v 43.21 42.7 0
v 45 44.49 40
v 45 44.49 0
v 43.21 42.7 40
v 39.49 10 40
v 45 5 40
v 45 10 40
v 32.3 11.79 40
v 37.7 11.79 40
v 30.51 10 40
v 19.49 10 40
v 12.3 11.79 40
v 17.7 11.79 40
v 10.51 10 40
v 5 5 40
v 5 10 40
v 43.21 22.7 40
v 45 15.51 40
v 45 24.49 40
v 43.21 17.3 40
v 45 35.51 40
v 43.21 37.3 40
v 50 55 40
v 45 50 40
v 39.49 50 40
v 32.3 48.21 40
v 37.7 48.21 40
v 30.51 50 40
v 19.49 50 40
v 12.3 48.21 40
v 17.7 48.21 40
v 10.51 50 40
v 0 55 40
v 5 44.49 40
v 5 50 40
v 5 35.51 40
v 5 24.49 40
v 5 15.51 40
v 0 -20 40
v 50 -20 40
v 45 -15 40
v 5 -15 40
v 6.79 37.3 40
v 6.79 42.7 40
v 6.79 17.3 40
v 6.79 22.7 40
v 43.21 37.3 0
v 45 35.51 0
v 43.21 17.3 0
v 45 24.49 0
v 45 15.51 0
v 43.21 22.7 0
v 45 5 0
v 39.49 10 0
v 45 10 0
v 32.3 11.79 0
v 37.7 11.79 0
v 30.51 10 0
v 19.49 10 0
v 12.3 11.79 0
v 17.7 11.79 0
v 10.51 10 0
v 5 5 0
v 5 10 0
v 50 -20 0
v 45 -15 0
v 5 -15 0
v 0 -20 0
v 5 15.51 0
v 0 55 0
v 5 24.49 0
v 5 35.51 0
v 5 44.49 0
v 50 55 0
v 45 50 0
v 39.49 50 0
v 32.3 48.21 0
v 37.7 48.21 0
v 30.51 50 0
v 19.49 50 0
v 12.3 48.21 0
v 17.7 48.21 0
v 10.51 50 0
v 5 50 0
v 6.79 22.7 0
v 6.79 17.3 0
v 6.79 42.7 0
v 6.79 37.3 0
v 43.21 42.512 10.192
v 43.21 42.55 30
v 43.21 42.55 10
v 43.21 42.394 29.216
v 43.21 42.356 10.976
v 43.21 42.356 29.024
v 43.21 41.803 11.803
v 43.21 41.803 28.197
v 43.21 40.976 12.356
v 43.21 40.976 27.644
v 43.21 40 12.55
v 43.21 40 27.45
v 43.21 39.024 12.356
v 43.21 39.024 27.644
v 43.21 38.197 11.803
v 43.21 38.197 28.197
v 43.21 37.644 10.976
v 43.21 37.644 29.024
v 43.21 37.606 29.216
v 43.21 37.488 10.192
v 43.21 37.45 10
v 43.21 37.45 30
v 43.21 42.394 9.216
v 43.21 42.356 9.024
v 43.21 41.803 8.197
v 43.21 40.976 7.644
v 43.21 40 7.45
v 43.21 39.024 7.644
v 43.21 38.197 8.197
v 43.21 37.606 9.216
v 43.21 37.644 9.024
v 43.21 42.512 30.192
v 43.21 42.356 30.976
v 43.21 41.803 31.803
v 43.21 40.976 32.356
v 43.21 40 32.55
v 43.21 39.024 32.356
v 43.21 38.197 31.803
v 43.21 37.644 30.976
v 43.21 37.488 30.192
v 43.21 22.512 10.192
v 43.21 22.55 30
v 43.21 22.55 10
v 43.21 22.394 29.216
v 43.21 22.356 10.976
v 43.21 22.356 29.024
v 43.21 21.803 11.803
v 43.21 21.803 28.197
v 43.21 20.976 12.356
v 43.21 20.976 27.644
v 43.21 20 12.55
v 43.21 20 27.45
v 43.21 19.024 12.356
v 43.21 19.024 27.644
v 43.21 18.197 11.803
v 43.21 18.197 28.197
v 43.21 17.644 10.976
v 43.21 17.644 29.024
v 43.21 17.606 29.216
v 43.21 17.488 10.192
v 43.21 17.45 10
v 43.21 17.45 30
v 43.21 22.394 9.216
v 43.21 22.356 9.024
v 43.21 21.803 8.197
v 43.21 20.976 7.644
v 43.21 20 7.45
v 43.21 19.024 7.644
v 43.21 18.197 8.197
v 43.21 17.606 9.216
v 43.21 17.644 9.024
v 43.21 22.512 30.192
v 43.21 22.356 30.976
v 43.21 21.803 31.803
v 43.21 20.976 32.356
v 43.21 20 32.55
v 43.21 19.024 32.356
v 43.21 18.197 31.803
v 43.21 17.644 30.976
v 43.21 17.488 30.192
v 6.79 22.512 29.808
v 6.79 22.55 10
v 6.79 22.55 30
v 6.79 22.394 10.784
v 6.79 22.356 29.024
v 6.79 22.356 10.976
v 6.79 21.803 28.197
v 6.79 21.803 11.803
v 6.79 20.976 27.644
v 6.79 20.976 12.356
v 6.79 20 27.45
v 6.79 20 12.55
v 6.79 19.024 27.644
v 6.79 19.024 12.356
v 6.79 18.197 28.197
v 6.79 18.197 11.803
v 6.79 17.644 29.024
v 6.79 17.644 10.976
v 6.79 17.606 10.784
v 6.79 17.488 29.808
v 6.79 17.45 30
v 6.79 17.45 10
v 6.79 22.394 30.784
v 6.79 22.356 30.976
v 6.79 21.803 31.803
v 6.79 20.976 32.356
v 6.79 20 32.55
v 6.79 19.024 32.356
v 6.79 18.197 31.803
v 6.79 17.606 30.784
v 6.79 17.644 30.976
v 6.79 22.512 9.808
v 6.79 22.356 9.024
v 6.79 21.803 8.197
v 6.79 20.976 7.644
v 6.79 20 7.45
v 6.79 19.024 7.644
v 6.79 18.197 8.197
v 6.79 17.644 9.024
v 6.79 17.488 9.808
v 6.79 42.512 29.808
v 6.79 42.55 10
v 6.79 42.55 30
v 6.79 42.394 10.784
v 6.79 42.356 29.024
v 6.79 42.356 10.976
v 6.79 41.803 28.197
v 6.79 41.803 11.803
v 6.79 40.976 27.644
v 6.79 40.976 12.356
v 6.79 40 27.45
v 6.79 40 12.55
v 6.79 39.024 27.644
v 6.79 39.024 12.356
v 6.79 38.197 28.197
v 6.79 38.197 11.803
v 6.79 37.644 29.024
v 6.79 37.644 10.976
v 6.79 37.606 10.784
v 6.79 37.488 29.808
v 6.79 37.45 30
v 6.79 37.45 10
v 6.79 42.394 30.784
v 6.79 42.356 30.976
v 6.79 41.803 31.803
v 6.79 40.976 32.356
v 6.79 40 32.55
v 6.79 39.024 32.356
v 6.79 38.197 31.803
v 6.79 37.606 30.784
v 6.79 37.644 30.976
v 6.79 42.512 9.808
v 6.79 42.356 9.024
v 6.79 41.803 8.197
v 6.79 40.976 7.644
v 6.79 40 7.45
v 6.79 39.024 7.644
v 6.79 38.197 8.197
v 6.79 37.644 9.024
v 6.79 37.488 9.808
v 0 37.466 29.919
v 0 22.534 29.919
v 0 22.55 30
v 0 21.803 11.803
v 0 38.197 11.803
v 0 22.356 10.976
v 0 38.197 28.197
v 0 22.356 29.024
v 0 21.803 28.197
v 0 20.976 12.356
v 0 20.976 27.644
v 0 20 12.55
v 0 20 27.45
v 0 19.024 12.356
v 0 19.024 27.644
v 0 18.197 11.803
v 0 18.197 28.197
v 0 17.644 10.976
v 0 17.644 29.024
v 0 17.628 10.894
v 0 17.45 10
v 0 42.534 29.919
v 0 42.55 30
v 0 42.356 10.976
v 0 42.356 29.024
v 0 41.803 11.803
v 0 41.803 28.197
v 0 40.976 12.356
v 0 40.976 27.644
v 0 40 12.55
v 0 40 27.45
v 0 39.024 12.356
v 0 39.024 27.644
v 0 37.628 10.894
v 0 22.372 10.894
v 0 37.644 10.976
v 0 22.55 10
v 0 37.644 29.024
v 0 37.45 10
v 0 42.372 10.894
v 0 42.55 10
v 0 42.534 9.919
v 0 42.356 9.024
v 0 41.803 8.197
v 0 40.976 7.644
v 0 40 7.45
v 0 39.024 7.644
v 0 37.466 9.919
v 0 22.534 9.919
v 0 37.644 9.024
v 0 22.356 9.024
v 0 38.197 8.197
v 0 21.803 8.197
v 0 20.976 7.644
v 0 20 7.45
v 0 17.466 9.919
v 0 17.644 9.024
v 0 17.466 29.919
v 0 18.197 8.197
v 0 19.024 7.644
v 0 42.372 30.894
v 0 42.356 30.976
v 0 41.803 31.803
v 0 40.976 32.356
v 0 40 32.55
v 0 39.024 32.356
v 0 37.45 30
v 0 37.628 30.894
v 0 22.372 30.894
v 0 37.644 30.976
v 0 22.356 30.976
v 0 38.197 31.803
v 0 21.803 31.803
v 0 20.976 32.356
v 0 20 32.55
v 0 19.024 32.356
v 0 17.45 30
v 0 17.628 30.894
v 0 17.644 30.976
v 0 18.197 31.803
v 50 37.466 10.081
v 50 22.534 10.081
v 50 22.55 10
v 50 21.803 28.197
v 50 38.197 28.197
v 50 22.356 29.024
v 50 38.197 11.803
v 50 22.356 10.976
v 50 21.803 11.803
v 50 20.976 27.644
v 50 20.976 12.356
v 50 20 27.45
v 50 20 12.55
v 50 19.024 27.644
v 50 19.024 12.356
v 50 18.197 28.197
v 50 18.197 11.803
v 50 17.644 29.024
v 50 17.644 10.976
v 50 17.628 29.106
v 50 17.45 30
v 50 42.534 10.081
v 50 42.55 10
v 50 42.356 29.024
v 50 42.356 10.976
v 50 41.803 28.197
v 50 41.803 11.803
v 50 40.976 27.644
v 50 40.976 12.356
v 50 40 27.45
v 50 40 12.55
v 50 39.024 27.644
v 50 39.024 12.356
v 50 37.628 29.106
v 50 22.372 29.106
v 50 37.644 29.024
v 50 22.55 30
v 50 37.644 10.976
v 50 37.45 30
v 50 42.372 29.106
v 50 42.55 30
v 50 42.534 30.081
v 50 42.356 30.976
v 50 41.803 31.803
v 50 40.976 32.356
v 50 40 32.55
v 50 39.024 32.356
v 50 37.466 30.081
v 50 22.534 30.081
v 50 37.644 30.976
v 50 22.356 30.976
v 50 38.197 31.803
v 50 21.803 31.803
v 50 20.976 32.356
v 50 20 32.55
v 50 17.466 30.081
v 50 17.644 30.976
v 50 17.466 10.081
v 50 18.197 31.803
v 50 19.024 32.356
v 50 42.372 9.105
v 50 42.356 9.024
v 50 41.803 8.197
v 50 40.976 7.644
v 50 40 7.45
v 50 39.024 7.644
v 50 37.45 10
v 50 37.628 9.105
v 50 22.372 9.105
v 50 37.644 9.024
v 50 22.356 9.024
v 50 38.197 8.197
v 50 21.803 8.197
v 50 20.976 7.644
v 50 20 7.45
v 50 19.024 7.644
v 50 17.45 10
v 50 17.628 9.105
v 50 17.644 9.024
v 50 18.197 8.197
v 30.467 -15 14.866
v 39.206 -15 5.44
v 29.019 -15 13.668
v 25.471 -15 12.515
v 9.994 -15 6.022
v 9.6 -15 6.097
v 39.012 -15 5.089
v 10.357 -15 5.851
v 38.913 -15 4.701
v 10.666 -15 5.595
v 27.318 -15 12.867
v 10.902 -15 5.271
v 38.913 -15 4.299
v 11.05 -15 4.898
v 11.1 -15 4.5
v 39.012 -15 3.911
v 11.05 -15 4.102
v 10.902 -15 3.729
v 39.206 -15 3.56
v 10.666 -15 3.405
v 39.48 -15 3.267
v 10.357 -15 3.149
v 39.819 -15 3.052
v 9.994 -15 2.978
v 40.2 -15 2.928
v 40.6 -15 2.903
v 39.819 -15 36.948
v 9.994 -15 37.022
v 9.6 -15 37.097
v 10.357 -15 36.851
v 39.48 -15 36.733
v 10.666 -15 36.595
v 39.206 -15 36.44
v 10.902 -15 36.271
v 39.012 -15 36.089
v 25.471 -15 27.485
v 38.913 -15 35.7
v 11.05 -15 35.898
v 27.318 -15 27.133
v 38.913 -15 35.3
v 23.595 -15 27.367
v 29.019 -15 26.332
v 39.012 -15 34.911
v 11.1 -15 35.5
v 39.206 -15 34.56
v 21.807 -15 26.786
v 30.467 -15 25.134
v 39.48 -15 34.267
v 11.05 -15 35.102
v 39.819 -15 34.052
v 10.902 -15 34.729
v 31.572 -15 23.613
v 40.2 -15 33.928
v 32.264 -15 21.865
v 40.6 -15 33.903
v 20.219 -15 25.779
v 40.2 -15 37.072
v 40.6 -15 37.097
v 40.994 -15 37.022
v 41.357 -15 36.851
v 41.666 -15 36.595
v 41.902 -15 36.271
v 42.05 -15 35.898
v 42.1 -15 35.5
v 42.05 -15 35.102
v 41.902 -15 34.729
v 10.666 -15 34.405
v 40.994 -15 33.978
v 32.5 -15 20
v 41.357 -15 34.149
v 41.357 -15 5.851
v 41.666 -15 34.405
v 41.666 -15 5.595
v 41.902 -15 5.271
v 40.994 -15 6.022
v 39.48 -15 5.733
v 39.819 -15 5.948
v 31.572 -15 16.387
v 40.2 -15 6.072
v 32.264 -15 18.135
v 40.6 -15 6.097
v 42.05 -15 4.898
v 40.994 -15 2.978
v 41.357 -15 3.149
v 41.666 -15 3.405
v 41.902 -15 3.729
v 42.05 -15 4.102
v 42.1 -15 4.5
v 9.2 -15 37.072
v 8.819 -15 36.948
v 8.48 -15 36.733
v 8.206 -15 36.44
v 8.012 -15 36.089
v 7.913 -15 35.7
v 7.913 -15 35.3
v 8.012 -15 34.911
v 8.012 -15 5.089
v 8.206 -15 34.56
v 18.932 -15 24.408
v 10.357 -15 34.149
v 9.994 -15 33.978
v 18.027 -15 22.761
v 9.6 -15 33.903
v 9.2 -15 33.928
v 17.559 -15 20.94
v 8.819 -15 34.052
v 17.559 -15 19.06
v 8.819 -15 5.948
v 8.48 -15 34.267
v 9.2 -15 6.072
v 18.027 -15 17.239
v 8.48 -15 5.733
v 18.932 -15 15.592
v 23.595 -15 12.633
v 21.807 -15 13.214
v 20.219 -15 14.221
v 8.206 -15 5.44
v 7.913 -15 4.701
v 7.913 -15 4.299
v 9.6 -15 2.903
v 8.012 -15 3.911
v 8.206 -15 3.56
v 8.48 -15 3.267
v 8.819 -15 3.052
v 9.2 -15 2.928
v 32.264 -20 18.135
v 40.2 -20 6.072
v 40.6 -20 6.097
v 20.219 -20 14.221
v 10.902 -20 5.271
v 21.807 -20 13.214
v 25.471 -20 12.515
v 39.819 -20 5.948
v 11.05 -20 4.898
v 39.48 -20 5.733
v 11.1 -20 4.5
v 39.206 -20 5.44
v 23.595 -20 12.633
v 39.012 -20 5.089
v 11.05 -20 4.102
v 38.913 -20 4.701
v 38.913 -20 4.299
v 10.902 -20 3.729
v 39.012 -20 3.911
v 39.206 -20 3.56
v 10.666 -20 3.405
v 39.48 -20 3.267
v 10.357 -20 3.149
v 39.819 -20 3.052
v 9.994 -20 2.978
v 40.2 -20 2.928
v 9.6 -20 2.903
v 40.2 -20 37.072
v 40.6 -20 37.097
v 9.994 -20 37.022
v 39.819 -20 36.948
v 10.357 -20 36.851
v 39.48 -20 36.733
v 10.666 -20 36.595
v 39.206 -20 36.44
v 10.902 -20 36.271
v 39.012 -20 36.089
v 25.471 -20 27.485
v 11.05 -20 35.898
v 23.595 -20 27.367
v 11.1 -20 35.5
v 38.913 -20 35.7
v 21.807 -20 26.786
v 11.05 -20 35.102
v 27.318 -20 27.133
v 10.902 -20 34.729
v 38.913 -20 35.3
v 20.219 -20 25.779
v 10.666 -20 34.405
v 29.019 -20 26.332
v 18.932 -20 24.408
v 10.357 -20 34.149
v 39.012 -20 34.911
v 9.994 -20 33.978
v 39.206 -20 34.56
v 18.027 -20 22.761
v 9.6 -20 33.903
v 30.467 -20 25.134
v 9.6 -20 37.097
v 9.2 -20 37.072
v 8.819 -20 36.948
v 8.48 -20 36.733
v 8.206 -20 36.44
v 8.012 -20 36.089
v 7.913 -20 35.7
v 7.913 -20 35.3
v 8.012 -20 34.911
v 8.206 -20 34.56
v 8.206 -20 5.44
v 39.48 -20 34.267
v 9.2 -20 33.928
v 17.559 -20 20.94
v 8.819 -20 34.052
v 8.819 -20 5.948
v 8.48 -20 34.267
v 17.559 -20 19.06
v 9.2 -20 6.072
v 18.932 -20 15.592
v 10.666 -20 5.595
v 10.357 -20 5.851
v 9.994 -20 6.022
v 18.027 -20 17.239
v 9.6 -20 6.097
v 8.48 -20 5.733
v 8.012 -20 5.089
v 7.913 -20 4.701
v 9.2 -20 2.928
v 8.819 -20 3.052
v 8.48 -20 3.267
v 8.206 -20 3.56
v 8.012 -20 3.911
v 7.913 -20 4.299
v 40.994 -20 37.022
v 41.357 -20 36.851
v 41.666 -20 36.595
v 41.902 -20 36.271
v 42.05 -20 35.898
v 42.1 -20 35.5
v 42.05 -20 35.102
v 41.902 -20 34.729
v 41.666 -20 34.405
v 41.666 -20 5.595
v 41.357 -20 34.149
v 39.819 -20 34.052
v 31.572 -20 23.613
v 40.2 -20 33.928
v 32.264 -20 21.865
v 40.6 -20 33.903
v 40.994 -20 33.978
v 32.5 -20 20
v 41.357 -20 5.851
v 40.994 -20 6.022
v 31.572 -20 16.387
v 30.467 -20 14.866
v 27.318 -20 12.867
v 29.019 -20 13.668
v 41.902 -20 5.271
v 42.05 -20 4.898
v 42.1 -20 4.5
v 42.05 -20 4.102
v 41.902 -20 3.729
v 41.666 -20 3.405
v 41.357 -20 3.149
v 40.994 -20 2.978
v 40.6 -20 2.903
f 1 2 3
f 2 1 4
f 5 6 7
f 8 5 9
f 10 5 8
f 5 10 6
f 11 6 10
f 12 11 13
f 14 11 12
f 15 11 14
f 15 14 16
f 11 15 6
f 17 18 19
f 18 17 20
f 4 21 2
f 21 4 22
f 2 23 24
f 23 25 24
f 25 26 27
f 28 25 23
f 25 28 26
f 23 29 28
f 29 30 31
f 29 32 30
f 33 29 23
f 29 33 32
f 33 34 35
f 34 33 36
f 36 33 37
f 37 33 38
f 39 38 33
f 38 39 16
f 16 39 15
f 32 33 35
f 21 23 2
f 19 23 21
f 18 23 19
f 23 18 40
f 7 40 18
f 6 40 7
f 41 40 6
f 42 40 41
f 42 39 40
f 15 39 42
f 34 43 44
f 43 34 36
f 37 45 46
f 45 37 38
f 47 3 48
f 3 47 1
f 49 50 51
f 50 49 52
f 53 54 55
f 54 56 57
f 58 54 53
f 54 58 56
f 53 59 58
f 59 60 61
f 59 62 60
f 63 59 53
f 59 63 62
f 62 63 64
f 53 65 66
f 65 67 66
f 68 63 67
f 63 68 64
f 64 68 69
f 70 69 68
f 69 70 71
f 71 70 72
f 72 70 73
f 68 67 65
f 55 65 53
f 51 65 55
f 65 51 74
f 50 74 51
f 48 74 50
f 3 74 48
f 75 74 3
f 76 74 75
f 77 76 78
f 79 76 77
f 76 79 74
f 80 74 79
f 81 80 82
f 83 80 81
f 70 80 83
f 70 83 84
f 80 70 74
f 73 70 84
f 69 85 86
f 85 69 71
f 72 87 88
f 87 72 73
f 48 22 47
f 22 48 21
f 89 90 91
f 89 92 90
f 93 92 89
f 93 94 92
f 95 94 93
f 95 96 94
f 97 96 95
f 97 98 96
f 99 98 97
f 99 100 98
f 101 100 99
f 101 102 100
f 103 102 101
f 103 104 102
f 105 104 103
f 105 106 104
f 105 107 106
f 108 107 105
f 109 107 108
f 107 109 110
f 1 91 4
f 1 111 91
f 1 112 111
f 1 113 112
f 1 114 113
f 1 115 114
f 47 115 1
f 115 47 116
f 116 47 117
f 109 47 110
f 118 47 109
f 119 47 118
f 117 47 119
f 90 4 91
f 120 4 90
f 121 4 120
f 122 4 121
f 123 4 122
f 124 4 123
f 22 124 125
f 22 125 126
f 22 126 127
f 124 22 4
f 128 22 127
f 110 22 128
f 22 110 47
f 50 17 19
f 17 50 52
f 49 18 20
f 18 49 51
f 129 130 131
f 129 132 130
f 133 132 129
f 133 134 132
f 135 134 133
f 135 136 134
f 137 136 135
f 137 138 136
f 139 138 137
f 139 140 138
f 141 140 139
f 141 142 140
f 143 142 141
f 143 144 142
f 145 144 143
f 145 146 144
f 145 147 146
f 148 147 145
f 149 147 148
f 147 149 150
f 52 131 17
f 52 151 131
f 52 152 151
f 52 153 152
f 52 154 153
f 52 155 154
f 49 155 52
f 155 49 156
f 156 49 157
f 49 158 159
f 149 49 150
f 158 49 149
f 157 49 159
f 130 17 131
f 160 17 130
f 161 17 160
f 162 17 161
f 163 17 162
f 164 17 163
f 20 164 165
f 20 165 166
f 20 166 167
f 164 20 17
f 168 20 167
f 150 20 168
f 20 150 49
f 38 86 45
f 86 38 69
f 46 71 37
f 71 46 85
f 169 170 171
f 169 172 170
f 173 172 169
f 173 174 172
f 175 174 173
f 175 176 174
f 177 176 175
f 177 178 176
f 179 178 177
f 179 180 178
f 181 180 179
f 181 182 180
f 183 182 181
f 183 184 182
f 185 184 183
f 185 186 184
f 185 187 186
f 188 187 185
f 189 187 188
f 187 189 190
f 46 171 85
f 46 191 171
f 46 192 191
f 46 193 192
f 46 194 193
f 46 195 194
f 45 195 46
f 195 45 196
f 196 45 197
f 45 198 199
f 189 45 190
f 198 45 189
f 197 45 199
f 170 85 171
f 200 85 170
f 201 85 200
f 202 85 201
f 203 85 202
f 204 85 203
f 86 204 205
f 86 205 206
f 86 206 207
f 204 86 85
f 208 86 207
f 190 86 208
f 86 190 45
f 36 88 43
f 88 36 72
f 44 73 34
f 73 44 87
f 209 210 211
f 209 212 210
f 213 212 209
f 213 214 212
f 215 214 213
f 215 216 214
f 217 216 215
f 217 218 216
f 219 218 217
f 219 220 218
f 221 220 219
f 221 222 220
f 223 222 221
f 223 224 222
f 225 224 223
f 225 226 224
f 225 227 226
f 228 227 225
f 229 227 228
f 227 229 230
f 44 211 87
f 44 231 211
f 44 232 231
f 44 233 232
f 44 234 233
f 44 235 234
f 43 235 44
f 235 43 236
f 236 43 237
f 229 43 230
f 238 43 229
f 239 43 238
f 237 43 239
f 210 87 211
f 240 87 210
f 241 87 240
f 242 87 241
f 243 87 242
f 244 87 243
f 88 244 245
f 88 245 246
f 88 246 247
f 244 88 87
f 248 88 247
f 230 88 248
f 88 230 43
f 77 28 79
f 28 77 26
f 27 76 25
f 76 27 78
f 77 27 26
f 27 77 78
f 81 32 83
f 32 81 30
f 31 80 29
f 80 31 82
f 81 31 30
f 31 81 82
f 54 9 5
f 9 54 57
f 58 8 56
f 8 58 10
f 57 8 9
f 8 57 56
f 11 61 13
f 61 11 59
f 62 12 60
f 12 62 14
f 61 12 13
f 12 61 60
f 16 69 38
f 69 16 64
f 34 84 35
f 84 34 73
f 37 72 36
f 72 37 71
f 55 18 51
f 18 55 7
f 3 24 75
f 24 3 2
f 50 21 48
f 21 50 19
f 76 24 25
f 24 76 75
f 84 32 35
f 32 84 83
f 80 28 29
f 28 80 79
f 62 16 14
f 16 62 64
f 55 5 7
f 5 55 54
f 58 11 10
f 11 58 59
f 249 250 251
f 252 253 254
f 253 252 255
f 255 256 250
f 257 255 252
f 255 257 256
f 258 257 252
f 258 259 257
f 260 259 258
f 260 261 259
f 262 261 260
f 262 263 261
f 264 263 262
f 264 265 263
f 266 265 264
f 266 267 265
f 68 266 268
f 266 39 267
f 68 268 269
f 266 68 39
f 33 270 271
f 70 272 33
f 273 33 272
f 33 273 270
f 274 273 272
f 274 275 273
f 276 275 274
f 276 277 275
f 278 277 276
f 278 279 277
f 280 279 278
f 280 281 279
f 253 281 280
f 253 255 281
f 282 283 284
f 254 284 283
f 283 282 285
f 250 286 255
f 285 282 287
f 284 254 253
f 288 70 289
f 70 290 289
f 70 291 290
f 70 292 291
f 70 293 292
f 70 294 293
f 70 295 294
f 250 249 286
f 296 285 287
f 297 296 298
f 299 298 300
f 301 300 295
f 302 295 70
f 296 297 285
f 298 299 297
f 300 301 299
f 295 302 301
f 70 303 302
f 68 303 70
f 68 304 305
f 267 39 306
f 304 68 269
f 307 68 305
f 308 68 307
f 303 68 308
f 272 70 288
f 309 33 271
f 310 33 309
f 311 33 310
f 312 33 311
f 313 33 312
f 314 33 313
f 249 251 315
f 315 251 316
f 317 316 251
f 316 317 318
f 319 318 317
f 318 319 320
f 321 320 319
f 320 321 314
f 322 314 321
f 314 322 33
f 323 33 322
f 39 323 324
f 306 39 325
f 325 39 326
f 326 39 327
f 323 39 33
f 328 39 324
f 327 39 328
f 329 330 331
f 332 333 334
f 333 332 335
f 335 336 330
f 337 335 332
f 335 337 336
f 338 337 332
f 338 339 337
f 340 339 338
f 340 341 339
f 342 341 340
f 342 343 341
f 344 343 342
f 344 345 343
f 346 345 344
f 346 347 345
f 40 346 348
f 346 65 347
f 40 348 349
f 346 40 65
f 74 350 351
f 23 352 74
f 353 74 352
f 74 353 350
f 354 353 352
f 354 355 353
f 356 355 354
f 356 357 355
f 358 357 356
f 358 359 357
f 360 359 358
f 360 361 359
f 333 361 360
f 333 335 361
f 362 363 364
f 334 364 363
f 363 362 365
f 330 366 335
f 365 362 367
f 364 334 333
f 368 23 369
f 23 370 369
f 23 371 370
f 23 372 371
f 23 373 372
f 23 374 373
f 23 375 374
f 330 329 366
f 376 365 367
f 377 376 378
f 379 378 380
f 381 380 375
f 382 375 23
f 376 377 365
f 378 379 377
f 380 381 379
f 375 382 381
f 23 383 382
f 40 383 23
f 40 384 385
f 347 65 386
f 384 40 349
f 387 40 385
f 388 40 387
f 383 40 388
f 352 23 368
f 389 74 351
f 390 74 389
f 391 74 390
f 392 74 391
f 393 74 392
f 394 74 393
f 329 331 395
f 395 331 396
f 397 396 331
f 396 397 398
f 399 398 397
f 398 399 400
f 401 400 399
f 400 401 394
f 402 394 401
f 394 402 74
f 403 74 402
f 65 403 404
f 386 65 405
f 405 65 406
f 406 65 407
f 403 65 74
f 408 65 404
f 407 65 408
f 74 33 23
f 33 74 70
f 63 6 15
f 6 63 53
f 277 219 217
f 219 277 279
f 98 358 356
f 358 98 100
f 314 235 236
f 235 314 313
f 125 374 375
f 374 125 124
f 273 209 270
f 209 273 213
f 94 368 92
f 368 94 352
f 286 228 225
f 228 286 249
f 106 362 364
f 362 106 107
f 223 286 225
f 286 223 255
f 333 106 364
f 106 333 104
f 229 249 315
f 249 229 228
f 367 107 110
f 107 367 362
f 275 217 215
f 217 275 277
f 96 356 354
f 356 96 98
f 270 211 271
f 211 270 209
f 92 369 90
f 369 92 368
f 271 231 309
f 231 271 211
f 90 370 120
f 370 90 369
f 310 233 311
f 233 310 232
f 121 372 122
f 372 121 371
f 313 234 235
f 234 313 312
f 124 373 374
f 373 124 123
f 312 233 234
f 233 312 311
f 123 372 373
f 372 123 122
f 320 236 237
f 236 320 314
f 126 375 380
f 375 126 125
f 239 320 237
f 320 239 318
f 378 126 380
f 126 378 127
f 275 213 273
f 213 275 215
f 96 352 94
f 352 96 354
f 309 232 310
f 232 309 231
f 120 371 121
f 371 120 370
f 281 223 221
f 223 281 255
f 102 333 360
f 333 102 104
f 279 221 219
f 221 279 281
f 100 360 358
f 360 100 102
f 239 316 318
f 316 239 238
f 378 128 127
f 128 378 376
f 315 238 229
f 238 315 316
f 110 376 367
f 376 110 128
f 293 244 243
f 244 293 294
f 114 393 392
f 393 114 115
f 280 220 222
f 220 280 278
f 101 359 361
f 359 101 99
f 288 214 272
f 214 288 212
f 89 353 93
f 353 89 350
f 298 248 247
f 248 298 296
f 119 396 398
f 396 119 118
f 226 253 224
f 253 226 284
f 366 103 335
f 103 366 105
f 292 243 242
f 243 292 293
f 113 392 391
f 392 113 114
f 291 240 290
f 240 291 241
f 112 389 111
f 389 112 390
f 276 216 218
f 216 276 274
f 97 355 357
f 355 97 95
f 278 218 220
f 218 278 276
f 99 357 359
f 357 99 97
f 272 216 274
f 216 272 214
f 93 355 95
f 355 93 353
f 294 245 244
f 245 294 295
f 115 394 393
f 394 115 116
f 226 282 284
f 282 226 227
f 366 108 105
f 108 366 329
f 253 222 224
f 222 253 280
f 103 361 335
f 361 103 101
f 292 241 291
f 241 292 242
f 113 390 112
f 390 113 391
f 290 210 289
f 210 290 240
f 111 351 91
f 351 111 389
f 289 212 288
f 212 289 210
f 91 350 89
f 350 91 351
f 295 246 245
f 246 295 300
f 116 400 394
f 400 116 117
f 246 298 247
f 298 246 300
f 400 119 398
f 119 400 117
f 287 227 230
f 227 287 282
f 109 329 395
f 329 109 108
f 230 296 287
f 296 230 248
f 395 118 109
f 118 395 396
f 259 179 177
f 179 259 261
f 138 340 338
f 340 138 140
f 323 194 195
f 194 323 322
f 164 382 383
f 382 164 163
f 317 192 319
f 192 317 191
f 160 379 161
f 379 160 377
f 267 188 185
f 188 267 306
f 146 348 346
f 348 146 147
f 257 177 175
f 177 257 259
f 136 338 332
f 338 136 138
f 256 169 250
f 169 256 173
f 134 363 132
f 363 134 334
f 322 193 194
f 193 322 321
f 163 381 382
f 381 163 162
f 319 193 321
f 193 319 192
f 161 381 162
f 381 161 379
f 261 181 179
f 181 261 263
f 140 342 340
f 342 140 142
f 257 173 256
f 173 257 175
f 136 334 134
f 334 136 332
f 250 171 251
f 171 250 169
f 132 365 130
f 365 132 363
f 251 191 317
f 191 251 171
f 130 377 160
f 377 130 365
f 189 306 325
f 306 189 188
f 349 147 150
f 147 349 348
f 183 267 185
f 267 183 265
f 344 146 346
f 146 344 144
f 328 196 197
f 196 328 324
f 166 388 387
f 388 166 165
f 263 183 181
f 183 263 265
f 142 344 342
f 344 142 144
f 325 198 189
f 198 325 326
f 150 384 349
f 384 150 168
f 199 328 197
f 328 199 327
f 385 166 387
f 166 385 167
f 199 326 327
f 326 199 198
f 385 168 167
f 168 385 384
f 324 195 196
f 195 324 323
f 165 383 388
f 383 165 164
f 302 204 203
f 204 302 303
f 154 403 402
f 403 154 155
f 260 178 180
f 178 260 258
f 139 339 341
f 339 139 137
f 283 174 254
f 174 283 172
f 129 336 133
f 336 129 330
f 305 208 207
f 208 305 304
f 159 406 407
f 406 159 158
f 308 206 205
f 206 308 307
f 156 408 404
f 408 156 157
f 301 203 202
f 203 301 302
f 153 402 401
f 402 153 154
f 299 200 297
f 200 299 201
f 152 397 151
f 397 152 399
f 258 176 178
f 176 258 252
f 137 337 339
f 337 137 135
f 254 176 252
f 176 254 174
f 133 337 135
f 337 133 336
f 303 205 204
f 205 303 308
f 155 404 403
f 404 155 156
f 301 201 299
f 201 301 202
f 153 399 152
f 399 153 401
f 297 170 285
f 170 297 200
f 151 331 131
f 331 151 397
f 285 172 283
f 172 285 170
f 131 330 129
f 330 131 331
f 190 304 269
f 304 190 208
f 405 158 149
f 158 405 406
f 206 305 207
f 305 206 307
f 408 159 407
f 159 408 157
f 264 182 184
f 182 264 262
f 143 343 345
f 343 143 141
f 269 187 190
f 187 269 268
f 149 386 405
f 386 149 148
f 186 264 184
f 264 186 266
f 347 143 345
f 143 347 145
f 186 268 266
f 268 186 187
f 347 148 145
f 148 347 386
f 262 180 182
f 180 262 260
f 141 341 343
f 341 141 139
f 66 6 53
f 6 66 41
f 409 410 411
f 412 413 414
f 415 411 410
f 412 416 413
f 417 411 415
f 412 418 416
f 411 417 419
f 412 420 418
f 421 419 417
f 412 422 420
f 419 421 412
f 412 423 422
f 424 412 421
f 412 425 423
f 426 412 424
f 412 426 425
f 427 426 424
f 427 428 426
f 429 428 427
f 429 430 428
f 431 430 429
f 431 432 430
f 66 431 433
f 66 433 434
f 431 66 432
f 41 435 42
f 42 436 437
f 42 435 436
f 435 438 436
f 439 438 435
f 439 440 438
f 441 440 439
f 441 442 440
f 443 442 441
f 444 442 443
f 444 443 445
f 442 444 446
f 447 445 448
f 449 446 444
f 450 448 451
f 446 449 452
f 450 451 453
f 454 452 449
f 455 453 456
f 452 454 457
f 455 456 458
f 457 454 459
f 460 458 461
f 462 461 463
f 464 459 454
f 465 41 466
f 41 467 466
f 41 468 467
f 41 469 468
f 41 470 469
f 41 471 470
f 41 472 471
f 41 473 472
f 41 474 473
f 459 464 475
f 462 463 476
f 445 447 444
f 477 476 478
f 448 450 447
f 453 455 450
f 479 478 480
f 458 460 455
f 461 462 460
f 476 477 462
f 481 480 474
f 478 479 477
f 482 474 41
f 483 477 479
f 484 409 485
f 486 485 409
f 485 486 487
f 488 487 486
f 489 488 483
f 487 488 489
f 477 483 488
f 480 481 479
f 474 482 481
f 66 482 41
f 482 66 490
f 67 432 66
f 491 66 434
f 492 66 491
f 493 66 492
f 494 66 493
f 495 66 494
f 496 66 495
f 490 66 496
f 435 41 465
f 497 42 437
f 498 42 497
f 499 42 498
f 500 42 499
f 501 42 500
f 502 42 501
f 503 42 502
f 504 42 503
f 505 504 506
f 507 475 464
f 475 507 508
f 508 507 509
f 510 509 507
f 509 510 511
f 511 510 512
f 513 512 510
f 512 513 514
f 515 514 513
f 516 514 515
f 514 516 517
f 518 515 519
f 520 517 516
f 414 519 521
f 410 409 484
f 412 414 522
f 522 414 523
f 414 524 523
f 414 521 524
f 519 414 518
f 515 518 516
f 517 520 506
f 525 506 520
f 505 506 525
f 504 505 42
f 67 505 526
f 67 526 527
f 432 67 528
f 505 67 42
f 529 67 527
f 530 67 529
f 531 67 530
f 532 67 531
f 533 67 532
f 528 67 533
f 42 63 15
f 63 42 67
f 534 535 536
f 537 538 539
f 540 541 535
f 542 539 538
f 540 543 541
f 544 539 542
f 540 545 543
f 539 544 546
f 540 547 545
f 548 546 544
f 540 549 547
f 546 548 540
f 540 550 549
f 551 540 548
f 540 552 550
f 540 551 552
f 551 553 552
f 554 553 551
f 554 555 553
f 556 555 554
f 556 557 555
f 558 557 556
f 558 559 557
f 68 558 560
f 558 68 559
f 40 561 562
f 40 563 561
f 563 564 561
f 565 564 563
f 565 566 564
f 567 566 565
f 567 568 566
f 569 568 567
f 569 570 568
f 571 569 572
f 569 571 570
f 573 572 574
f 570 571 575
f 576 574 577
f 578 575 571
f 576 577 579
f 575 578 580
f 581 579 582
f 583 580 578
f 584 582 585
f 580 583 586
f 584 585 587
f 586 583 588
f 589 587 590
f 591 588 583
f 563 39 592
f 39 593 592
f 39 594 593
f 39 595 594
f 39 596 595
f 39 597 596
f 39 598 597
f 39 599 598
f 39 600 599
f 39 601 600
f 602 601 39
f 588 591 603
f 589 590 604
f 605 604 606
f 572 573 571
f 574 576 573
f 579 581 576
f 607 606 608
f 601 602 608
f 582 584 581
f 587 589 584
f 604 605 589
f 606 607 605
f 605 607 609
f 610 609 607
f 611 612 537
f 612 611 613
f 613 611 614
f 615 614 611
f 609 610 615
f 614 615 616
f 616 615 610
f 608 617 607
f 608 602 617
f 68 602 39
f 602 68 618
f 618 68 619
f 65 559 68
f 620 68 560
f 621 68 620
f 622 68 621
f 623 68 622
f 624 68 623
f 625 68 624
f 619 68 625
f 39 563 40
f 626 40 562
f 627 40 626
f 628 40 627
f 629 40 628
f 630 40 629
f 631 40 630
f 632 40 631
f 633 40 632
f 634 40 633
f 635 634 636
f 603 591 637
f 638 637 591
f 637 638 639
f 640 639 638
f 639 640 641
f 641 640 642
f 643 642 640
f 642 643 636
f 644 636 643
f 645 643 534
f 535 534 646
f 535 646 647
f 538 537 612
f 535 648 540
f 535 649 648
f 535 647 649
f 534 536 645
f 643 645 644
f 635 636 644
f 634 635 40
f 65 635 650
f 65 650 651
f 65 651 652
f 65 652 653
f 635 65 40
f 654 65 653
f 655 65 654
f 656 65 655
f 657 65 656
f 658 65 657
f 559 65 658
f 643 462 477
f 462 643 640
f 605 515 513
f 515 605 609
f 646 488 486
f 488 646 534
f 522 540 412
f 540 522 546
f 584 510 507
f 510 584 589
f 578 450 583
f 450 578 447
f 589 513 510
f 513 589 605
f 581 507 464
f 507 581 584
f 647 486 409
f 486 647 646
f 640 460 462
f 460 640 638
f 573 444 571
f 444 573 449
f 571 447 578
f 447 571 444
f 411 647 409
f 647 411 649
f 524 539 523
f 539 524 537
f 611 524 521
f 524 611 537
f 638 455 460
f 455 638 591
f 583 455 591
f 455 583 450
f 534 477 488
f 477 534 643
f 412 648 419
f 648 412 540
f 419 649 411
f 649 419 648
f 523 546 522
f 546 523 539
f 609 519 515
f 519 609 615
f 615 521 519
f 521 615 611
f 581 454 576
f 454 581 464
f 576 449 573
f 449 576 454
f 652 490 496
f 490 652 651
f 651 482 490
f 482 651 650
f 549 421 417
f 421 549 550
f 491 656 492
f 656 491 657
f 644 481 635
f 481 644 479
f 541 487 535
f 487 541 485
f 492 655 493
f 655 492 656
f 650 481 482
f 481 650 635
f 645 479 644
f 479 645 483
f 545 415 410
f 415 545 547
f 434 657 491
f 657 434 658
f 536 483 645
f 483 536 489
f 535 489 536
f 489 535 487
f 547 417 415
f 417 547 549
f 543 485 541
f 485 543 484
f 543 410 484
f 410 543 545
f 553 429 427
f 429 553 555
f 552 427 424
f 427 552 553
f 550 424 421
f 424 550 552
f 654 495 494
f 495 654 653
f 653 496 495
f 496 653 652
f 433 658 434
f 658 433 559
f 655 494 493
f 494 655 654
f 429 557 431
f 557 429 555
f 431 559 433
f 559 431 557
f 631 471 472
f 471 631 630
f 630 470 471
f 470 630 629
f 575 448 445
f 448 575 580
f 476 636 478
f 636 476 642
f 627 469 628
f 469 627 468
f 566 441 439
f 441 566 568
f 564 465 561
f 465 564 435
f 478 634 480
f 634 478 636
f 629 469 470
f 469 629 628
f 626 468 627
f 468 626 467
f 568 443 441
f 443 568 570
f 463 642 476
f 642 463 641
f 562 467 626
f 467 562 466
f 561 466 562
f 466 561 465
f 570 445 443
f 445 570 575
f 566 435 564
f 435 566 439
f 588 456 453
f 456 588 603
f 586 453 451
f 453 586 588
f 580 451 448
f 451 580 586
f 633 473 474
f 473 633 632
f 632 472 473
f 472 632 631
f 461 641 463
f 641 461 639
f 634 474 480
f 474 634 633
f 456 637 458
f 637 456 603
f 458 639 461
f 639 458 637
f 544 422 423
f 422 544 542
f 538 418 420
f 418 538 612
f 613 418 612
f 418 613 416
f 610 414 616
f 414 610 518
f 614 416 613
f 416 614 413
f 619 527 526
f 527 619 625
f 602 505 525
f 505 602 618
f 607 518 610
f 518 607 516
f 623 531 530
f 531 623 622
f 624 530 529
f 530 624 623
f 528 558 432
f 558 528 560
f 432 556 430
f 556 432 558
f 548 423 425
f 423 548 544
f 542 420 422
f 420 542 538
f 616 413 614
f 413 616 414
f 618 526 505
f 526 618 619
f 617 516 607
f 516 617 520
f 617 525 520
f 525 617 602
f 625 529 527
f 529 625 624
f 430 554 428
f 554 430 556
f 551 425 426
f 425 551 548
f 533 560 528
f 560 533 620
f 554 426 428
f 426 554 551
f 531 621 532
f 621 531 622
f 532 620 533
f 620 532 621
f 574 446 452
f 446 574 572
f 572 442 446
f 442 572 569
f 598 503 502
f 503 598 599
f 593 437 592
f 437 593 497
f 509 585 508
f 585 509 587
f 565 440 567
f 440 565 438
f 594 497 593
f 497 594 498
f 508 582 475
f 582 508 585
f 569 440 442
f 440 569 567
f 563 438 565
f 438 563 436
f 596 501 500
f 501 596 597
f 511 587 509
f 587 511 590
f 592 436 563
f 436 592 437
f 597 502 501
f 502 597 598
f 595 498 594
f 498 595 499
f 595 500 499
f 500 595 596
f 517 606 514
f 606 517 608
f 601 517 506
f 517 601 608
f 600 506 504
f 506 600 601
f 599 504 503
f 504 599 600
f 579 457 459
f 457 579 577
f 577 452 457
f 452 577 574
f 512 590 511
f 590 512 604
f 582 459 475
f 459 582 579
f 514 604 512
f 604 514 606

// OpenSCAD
thickness = 10;
height = 40;
extrusion_x = 40;
extrusion_y = 40;

base();
translate([0,-20,0]) mount();

module mount(){
    center_x = thickness / 2 + 20;
    center_z = height / 2;
    
    difference(){
        linear_extrude(height=height){
            difference(){
                square([40 + thickness / 2 * 2, 20 + thickness / 2]);
                translate([thickness / 2,thickness / 2,0]) square([40, 20 + thickness]);
            }        
        }
        //Axle hole
        translate([(40 + thickness ) / 2, thickness / 2 + 2.5, 20]) rotate([90,0,0]) cylinder(d=15, $fn=25, h=thickness / 2 + 5);
        //Stepper holes
        translate([center_x + 15.5,thickness / 2,center_z - 15.5]) rotate([90,0,0]) cylinder(d=3.2, $fn=25, h=thickness / 2 + 5);
        translate([center_x + 15.5,thickness / 2,center_z + 15.5]) rotate([90,0,0]) cylinder(d=3.2, $fn=25, h=thickness / 2 + 5);
        translate([center_x - 15.5,thickness / 2,center_z - 15.5]) rotate([90,0,0]) cylinder(d=3.2, $fn=25, h=thickness / 2 + 5);
        translate([center_x - 15.5,thickness / 2,center_z + 15.5]) rotate([90,0,0]) cylinder(d=3.2, $fn=25, h=thickness / 2 + 5);
    }

}

module base(){
    translate([(thickness + extrusion_x) / 2, thickness + extrusion_y / 2,height / 2]){
        difference(){
           cube([extrusion_x + thickness, extrusion_y + thickness, height], center=true);
           vslot_extrusion(extrusion_x,extrusion_y,height);
            
           translate([0, extrusion_y / 4, extrusion_y / 4]) rotate([0,90,0])  cylinder(d=5.1, h=thickness * 2 + 40, $fn=16, center=true);
           translate([0, extrusion_y / 4, -extrusion_y / 4]) rotate([0,90,0])  cylinder(d=5.1, h=thickness * 2 + 40, $fn=16, center=true);  
           translate([0, -extrusion_y / 4, extrusion_y / 4]) rotate([0,90,0])  cylinder(d=5.1, h=thickness * 2 + 40, $fn=16, center=true); 
           translate([0, -extrusion_y / 4, -extrusion_y / 4]) rotate([0,90,0])  cylinder(d=5.1, h=thickness * 2 + 40, $fn=16, center=true); 
        }         
    }
   
}



module vslot_extrusion(x,y,length = 20) {
    difference(){
        cube([x,y,length],center=true);
        translate([x / 2 + 0.01,y / 4,0]) vslot();
        translate([x / 2 + 0.01,-y  / 4,0]) vslot();
        translate([-x / 2 - 0.01,-y / 4,0]) rotate([0,0,180]) vslot();
        translate([-x / 2 - 0.01,y / 4,0]) rotate([0,0,180]) vslot();
        translate([x / 4,y / 2 + 0.01,0]) rotate([0,0,90]) vslot();
        translate([-x / 4,y / 2 + 0.01,0]) rotate([0,0,90]) vslot();
        translate([x / 4,-y / 2 - 0.01,0]) rotate([0,0,-90]) vslot();
        translate([-x / 4,-y / 2 - 0.01,0]) rotate([0,0,-90]) vslot();
    }
    
    module vslot(){
        difference() {
            translate([0, 0, 0]) rotate([0, 0, 0])
             cylinder(r=4.5, h=length, center=true,  $fn=4);	

    //plane sides
            translate([-3.8, 0, 0]) rotate([0, 0, 0])
             cube([4, 20, length*2], center=true);
            translate([3, 0, 0]) rotate([0, 0, 0])
             cube([6, 20, length*2], center=true);
        }        
    }
}    
